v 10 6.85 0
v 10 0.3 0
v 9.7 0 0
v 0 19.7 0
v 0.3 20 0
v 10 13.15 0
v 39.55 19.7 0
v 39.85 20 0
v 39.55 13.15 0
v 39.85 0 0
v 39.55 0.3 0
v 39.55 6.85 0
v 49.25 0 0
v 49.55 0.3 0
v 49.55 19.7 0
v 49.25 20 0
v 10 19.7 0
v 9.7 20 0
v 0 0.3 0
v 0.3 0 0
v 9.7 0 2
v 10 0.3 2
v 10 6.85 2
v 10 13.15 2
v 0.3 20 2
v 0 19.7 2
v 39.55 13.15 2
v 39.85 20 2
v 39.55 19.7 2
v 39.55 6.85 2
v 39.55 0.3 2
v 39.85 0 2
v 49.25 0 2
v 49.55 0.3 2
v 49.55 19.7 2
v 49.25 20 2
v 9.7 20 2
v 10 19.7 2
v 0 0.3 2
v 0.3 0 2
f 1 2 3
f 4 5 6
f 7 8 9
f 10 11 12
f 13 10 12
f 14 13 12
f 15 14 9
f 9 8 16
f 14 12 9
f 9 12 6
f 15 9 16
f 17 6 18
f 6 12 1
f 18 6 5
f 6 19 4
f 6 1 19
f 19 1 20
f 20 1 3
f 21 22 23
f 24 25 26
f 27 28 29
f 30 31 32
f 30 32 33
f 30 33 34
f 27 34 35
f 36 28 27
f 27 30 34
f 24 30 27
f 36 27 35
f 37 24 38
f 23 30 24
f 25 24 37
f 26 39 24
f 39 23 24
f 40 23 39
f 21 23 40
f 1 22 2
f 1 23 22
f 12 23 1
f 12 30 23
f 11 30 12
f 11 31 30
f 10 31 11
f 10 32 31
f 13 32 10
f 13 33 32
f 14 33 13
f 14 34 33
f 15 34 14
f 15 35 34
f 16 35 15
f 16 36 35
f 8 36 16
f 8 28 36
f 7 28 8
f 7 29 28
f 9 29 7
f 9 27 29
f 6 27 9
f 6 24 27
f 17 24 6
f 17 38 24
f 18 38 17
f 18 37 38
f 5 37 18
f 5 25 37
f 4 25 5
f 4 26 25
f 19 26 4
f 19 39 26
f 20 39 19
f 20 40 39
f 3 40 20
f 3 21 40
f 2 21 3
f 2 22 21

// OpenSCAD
L = 49.55;
B = 20.00;
H = 2.00;

steg    = 6.30;
flansch = 10;

r = 0.3;      

cutW = (B - steg)/2;
cutL = L - 2*flansch;

module profile2d() {
  difference() {
    square([L, B], center=false);

    // linke Tasche
    translate([flansch, 0])
      square([cutL, cutW], center=false);

    // rechte Tasche
    translate([flansch, B - cutW])
      square([cutL, cutW], center=false);
  }
}

// Abrundung
linear_extrude(height=H, center=false)
offset(r=r) offset(delta=-r)
profile2d();
